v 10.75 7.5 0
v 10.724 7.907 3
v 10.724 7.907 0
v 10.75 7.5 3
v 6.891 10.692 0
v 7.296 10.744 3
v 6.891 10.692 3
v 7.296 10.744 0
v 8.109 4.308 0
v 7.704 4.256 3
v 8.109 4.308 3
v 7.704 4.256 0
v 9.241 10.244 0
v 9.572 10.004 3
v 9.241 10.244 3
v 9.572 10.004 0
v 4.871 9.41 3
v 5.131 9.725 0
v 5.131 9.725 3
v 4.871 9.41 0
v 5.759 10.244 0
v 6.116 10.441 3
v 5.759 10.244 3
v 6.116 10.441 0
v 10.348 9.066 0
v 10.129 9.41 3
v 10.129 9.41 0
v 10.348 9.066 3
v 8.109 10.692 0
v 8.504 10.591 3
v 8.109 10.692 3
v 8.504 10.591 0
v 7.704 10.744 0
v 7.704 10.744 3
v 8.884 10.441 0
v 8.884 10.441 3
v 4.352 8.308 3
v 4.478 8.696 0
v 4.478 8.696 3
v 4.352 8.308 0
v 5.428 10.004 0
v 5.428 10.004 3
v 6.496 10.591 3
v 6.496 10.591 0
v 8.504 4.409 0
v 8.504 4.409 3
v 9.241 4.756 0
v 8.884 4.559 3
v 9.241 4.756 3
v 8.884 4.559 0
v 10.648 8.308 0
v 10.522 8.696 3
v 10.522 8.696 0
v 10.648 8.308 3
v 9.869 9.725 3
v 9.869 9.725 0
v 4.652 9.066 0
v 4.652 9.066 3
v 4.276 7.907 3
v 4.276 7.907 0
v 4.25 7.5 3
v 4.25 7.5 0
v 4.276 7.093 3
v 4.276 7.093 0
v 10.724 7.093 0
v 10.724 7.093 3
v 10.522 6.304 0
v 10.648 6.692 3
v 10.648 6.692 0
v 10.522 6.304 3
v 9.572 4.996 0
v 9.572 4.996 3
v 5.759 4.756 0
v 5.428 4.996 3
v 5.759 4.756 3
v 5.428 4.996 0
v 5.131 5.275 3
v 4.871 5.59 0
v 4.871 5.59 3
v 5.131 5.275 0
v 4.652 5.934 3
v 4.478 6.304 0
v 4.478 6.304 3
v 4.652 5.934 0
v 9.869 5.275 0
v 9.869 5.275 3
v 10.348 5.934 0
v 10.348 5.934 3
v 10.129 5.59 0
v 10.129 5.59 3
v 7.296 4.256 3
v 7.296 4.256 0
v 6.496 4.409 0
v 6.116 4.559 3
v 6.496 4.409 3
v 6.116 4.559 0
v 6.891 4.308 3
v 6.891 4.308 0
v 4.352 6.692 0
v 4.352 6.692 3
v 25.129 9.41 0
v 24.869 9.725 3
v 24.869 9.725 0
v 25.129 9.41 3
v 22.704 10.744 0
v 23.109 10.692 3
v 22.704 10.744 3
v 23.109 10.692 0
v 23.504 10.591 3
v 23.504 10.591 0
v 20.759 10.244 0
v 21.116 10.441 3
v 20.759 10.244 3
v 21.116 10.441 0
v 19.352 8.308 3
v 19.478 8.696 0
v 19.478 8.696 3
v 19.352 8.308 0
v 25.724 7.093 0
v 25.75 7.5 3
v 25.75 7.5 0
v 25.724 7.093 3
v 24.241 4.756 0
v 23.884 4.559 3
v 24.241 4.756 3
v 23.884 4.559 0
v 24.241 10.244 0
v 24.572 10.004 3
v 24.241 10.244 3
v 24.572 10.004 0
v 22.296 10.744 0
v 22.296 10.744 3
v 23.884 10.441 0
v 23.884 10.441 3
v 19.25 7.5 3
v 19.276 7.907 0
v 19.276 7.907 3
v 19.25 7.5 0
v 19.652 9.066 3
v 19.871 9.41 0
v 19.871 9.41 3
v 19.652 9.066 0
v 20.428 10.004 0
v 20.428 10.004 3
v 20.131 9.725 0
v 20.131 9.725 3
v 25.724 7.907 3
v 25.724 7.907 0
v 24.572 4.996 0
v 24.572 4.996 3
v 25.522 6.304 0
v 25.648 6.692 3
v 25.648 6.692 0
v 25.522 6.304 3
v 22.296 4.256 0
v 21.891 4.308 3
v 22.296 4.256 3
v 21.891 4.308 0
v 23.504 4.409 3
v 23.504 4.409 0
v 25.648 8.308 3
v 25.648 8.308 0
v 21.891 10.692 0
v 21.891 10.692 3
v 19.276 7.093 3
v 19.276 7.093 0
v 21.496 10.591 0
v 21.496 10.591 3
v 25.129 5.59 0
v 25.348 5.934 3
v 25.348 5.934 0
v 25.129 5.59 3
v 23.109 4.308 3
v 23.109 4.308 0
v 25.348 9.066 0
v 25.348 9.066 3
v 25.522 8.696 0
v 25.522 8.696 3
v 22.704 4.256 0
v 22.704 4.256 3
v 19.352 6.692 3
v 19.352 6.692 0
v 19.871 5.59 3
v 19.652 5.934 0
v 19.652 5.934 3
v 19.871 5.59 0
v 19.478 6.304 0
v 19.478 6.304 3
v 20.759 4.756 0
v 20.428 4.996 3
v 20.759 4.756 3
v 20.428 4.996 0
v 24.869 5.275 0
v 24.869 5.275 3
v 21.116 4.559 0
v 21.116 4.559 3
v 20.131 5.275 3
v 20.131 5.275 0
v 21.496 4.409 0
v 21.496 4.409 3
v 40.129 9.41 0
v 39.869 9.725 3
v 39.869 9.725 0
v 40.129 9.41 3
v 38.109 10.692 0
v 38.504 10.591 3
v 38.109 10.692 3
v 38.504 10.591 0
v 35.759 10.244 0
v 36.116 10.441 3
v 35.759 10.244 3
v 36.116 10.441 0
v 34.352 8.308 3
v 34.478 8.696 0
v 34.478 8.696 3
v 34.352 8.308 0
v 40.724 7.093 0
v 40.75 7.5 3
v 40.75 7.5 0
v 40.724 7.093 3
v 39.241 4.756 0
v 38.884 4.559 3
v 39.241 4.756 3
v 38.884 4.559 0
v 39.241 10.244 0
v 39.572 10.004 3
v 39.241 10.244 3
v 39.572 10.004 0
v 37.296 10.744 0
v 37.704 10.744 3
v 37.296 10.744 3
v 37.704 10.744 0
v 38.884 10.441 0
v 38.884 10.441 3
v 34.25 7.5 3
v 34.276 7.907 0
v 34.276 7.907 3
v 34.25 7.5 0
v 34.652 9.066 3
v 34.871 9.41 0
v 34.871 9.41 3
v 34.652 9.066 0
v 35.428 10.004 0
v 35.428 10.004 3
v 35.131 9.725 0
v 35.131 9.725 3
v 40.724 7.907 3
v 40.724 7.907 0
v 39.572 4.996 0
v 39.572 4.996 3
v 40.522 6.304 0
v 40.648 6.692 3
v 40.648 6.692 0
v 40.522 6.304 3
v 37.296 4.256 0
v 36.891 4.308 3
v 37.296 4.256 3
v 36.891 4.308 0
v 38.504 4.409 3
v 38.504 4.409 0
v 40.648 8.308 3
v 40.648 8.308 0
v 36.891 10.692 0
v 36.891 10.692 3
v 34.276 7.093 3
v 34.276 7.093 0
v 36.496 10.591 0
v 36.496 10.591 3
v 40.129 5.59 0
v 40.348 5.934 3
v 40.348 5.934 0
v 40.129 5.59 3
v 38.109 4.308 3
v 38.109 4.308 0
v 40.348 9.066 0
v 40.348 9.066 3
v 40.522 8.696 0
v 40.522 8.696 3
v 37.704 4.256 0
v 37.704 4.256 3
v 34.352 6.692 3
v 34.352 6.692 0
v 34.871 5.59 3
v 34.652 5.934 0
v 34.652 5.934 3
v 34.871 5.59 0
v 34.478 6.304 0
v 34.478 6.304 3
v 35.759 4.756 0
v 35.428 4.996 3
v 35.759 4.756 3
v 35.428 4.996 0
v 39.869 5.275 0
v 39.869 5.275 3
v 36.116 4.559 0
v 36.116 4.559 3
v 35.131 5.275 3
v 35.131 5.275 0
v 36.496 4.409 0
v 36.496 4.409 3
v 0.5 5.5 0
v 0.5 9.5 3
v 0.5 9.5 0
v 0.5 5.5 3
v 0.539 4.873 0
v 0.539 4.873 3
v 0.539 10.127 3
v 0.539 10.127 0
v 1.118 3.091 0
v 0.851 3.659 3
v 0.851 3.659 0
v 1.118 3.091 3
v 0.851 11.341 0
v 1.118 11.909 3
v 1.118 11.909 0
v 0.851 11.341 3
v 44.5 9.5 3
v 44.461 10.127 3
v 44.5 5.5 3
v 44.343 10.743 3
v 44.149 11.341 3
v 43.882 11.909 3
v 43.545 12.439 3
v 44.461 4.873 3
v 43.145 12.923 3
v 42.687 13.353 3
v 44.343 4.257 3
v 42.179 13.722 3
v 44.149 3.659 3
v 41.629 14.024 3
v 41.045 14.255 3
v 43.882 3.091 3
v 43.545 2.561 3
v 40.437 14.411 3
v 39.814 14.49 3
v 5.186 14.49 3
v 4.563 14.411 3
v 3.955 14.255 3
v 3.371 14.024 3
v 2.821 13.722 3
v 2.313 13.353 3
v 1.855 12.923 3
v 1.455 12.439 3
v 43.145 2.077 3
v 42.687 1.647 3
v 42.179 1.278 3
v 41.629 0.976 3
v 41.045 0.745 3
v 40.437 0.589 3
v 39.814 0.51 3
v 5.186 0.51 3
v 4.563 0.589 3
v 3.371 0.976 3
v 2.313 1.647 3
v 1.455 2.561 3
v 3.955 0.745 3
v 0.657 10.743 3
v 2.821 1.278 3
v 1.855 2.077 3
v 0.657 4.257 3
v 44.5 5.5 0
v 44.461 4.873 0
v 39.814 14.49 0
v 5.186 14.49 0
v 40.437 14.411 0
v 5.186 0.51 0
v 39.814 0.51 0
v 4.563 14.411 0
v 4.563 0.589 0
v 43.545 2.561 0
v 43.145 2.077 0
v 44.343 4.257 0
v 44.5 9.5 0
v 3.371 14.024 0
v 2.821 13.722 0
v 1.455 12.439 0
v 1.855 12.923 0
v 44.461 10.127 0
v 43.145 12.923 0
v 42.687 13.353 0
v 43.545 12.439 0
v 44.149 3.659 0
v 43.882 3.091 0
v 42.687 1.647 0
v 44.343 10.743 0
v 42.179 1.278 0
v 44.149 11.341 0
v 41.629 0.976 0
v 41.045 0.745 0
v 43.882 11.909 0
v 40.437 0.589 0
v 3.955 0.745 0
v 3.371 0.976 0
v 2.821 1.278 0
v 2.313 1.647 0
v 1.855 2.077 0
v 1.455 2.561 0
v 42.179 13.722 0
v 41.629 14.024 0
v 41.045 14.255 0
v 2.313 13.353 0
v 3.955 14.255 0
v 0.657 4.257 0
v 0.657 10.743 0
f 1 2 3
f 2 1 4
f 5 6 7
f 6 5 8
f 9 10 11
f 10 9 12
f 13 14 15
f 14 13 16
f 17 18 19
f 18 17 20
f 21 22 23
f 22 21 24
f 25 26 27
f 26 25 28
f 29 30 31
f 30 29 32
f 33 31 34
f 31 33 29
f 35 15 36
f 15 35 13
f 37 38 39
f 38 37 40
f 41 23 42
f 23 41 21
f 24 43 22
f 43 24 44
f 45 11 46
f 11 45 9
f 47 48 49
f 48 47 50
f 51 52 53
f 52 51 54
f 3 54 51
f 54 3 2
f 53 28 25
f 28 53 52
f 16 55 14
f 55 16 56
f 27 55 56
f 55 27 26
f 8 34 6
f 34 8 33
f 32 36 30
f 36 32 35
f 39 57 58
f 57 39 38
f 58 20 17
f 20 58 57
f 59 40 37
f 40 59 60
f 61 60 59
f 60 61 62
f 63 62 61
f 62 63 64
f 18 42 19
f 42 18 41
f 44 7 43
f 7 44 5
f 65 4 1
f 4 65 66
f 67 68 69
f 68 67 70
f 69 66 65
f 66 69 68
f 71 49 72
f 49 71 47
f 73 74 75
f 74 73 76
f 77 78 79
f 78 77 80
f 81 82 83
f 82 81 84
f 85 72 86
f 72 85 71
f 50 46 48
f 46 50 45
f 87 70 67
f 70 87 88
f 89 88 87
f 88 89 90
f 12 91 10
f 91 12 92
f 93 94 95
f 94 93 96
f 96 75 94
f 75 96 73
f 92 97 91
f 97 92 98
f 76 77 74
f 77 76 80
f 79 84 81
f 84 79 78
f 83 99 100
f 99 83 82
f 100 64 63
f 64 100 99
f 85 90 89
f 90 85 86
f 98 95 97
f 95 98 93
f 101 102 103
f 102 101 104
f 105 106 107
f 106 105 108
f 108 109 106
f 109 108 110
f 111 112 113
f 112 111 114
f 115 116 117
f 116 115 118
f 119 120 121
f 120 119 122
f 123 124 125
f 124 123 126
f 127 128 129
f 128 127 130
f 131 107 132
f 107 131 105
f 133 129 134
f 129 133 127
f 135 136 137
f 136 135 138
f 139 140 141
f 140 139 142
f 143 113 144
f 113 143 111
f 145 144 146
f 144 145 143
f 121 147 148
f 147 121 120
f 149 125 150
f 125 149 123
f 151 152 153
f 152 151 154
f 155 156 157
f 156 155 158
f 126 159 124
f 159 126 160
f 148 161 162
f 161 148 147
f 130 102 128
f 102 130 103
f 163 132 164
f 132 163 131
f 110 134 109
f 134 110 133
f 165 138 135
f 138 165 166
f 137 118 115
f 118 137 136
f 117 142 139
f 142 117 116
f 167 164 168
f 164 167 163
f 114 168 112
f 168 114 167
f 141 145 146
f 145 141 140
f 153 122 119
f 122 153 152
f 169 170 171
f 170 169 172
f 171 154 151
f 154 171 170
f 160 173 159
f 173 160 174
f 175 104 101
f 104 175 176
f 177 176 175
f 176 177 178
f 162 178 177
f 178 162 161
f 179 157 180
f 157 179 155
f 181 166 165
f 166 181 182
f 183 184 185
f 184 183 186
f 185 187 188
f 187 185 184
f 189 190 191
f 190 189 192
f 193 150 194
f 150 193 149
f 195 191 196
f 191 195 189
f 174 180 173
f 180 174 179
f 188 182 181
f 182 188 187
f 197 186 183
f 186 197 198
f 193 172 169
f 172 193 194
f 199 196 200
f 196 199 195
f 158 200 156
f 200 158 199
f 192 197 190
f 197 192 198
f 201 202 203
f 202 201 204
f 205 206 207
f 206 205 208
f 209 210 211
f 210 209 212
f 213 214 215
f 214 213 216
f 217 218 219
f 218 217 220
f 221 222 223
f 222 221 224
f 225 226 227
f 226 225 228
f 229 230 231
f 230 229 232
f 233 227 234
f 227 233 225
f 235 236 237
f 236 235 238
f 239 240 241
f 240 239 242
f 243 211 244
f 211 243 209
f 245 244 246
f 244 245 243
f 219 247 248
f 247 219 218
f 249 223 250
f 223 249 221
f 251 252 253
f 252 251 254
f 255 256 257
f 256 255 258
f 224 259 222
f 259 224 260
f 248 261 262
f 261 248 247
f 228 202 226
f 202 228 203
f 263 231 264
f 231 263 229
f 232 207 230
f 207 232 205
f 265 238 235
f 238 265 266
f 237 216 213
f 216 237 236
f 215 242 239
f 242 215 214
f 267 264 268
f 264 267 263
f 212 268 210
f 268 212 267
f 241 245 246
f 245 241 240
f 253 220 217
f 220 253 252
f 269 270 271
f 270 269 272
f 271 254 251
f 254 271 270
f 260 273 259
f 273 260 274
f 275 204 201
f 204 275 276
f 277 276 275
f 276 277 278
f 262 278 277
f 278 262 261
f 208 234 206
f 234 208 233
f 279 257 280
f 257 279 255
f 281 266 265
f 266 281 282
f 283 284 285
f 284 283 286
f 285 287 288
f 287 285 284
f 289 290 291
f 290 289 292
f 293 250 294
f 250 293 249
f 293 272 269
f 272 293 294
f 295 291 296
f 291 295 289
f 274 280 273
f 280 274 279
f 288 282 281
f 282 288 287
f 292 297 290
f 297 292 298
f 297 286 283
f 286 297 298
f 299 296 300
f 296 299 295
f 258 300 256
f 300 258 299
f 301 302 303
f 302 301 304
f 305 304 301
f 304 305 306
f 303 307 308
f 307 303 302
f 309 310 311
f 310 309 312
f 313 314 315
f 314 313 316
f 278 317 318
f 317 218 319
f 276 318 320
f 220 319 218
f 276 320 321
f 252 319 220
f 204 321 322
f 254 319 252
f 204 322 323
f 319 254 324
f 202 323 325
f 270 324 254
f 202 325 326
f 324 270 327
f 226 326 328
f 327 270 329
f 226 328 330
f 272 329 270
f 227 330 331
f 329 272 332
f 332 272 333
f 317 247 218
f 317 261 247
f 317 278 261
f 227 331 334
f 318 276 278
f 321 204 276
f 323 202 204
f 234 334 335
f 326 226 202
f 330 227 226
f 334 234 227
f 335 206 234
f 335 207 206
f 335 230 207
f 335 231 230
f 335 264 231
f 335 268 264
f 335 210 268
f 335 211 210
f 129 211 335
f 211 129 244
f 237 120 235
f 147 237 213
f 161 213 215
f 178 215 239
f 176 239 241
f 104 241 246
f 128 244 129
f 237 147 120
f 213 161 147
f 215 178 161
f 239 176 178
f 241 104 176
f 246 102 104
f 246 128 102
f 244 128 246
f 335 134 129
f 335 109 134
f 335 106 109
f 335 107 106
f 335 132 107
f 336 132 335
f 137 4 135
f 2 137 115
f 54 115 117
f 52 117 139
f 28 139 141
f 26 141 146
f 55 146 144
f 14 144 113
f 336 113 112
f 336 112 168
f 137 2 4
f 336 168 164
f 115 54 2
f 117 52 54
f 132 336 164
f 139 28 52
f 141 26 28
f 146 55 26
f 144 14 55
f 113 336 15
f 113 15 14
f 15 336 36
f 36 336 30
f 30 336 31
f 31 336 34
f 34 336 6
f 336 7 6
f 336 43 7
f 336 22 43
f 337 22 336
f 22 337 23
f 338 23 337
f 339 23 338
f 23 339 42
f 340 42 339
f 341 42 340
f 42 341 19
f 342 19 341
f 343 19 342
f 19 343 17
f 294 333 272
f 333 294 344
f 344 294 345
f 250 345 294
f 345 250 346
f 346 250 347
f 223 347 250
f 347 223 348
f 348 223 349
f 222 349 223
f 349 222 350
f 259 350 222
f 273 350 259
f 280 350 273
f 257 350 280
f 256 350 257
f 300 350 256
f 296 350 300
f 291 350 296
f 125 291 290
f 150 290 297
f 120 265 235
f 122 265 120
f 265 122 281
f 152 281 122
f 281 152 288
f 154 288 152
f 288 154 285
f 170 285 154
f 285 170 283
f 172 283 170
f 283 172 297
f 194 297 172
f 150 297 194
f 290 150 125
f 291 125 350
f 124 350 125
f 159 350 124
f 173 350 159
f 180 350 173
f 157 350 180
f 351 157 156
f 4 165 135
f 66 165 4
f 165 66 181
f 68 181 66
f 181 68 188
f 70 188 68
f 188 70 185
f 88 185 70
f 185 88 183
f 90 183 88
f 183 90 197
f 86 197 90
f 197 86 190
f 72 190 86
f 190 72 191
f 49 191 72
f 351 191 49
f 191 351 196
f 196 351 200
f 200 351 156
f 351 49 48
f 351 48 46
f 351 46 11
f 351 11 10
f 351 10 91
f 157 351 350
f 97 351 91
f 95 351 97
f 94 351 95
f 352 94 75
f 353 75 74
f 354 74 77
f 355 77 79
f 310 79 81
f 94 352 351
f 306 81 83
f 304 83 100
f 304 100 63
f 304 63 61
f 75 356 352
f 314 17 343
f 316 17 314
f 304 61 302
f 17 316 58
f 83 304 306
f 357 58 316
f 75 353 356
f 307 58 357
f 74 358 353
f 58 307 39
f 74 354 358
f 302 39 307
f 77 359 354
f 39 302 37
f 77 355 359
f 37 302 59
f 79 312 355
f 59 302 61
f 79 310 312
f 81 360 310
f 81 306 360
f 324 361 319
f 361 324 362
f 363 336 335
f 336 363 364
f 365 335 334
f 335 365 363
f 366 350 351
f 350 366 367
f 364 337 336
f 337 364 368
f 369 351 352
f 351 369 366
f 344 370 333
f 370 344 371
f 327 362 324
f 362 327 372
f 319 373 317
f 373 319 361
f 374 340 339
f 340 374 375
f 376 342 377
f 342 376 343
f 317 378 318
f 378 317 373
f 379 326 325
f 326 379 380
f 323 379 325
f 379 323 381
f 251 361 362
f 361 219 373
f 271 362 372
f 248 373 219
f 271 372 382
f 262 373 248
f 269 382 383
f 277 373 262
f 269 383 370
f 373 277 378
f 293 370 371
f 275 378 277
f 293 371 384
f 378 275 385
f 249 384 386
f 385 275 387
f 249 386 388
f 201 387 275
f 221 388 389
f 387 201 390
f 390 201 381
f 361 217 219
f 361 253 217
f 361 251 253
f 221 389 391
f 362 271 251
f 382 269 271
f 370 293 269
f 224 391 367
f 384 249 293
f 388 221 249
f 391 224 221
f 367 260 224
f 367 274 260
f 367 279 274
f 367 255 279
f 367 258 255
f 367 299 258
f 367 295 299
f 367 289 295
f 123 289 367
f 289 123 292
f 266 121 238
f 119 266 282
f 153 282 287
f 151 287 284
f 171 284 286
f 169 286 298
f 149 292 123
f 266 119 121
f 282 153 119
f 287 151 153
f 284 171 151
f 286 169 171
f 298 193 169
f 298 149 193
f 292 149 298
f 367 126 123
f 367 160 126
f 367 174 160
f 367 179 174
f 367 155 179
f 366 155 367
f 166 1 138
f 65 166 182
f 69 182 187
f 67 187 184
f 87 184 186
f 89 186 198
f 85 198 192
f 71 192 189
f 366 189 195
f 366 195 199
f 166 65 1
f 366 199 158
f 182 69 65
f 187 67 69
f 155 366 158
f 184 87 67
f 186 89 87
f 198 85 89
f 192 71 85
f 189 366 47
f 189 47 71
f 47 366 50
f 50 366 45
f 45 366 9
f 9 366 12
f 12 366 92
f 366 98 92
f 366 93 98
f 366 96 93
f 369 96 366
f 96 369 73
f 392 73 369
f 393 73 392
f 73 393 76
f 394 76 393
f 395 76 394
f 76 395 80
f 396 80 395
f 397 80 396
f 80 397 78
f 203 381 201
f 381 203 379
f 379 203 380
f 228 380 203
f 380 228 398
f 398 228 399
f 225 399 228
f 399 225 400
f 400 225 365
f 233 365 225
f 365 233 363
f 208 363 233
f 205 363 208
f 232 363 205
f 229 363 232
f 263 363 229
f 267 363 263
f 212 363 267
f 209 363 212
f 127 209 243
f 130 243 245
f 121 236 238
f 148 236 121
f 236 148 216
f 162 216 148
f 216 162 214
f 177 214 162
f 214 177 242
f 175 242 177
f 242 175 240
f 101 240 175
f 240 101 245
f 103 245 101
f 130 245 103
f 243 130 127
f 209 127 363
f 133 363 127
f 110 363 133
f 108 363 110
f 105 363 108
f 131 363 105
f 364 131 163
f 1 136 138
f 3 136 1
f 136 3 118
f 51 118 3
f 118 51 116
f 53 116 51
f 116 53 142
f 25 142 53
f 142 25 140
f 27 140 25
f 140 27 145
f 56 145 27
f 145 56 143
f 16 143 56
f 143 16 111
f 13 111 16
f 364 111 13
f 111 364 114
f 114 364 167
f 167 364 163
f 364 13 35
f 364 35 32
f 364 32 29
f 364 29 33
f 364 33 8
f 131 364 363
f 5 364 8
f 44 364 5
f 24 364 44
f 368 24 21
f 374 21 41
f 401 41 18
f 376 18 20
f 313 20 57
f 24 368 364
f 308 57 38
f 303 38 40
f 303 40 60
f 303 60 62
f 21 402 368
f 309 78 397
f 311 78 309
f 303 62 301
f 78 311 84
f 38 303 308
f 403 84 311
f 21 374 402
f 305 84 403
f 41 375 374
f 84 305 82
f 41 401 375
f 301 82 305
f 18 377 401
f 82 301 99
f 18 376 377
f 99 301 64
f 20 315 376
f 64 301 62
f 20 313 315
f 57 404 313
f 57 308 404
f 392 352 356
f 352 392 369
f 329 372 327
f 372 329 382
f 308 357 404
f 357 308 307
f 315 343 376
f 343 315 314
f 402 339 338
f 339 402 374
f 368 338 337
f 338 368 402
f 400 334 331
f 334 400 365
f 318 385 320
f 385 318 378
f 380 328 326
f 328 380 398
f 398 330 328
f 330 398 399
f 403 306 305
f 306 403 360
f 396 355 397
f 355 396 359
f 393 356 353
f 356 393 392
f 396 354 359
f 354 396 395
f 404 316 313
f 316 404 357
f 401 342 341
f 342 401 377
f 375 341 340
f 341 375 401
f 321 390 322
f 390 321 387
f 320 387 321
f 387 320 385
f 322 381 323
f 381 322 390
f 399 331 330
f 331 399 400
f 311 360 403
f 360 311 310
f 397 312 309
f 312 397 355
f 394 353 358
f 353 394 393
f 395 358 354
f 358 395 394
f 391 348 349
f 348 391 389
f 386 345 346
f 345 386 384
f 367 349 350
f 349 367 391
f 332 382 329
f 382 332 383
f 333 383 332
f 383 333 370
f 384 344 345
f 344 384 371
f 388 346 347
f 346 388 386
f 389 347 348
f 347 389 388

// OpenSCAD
// Generated by SolidPython 1.1.3 on 2023-01-30 13:25:30
$fn = 50;


difference() {
	union() {
		translate(v = [22.5000000000, 7.5000000000, 0]) {
			rotate(a = [0, 0, 0]) {
				hull() {
					translate(v = [-17.0000000000, 2.0000000000, 0]) {
						rotate(a = [0, 0, 0]) {
							translate(v = [0, 0, 0]) {
								rotate(a = [0, 0, 0]) {
									cylinder(h = 3, r = 5);
								}
							}
						}
					}
					translate(v = [17.0000000000, 2.0000000000, 0]) {
						rotate(a = [0, 0, 0]) {
							translate(v = [0, 0, 0]) {
								rotate(a = [0, 0, 0]) {
									cylinder(h = 3, r = 5);
								}
							}
						}
					}
					translate(v = [-17.0000000000, -2.0000000000, 0]) {
						rotate(a = [0, 0, 0]) {
							translate(v = [0, 0, 0]) {
								rotate(a = [0, 0, 0]) {
									cylinder(h = 3, r = 5);
								}
							}
						}
					}
					translate(v = [17.0000000000, -2.0000000000, 0]) {
						rotate(a = [0, 0, 0]) {
							translate(v = [0, 0, 0]) {
								rotate(a = [0, 0, 0]) {
									cylinder(h = 3, r = 5);
								}
							}
						}
					}
				}
			}
		}
	}
	union() {
		translate(v = [7.5000000000, 7.5000000000, 0]) {
			rotate(a = [0, 0, 0]) {
				translate(v = [0, 0, -50]) {
					rotate(a = [0, 0, 0]) {
						cylinder(h = 100, r = 3.2500000000);
					}
				}
			}
		}
		translate(v = [22.5000000000, 7.5000000000, 0]) {
			rotate(a = [0, 0, 0]) {
				translate(v = [0, 0, -50]) {
					rotate(a = [0, 0, 0]) {
						cylinder(h = 100, r = 3.2500000000);
					}
				}
			}
		}
		translate(v = [37.5000000000, 7.5000000000, 0]) {
			rotate(a = [0, 0, 0]) {
				translate(v = [0, 0, -50]) {
					rotate(a = [0, 0, 0]) {
						cylinder(h = 100, r = 3.2500000000);
					}
				}
			}
		}
	}
}
/***********************************************
*********      SolidPython code:      **********
************************************************
 
from solid import *
import os
import subprocess

import oomB

import opsc_library_gen

mode = "laser"
#mode = "3d_print"

defined_objects = {}

radius_dict = {}
countersunk_dict = {}


def set_mode(m):
    global mode
    mode = m
    radius_dict['M6'] = 6.5/2
    radius_dict['M3'] = 3.3/2
    if mode == "laser":
        radius_dict['M6'] = 6/2
        radius_dict['M3'] = 3/2

    countersunk_dict['M3'] = {}
    countersunk_dict['M3']['little_rad'] = radius_dict['M3']
    countersunk_dict['M3']['big_rad'] = (5.5+0.6)/2
    if mode == "laser":
        countersunk_dict['M3']['big_rad'] = (4.75+0.6)/2
        countersunk_dict['M3']['little_rad'] = (4.75+0.6)/2

    countersunk_dict['M3']['height'] = 1.7


def opsc_make_object(filename, objects, save_type="none",resolution=50, layers = 1, tilediff = 200, mode="laser"):
    set_mode(mode)
    save_type = save_type.lower()
    os.makedirs(os.path.dirname(filename), exist_ok=True)
    final_object = opsc_get_object(objects)
    # Save the final object to the specified filename    
    scad_render_to_file(final_object, filename, file_header='$fn = %s;' % resolution, include_orig_code=True)
    if mode == "laser":
        filename_laser = filename.replace(".scad","-flat.scad")
        scad_render_to_file(getLaser(final_object, layers=layers, tilediff=tilediff), filename_laser, file_header='$fn = %s;' % resolution, include_orig_code=True)
        if save_type == "all":
            saveToAll(filename_laser)
        elif save_type == "dxf":
            saveToDxf(filename_laser)
    if save_type == "all":
        saveToAll(filename)
    elif save_type == "dxf":
        saveToDxf(filename)


def opsc_get_object(objects):
    # Create the solidpython objects
    positive_objects = [get_opsc_item(obj) for obj in objects if obj['type'] == 'positive']
    negative_objects = [get_opsc_item(obj) for obj in objects if obj['type'] == 'negative']
    # Union the positive objects
    positive_object = union()(*positive_objects)
    # Union the negative objects
    negative_object = union()(*negative_objects)
    # Create the final object by subtracting the negative objects from the positive objects
    return difference()(positive_object, negative_object)

def get_opsc_item(params):
    # A dictionary to map radius string values to numerical values
    #radius_dict = {'small': 5, 'medium': 10, 'large': 15}
    # An array of function names for basic shapes
    basic_shapes = ['cube', 'sphere', 'cylinder']
    
    # An array of function names for other shapes
    other_shapes = ['hole', 'slot', 'rounded_rectangle', 'countersunk']
    


    # Convert radius to r if present, and remove radius from the params dictionary
    if 'radius' in params:
        if isinstance(params['radius'], str):
            # Use the radius_dict to map the radius string value to a numerical value
            params['r'] = radius_dict[params['radius']]
        else:
            params['r'] = params['radius']
        del params['radius']
    

    # Check if the object type is a basic shape
    if params['shape'] in basic_shapes:
        # Remove shape and unexpected dictionary values
        allowed_keys = {'size', 'r', 'r1', 'r2', 'd', 'h', 'rw', 'rh', 'dw', 'dh'}
        shape_params = {k: v for k, v in params.items() if k in allowed_keys}

        # Call the corresponding function for the shape parameter, using ** notation to pass the shape_params dictionary as keyword arguments
        return get_opsc_transform(params,globals()[params['shape']](**shape_params))
    
    # If the object type is not a basic shape, check if it's a defined object or one of the other shapes
    elif params['shape'] in other_shapes:
        # Call the corresponding function for the shape parameter, passing the params dictionary as an argument
        p2 = copy.deepcopy(params)
        p2["pos"] = [0,0,0]
        return get_opsc_transform(params,globals()[params['shape']](p2))
    
    # If the object is not a basic shape or a defined object, try to import it from a .scad file
    else:
        obj = defined_objects[params['shape']]
        return get_opsc_transform(params,obj)

def get_opsc_transform(params, solid_obj):
    # Rotate the object based on the 'rot' field in the params dictionary, or the 'rotX', 'rotY', and 'rotZ' fields if 'rot' is not present
    rot = params.get('rot', [])
    if rot:
        rotX, rotY, rotZ = rot
    else:
        rotX = params.get('rotX', 0)
        rotY = params.get('rotY', 0)
        rotZ = params.get('rotZ', 0)
    solid_obj = rotate([rotX, rotY, rotZ])(solid_obj)

    # Translate the object based on the 'pos' field in the params dictionary, or the 'x', 'y', and 'z' fields if 'pos' is not present
    pos = params.get('pos', [])
    if pos:
        x, y, z = pos
    else:
        x = params.get('x', 0)
        y = params.get('y', 0)
        z = params.get('z', 0)
    solid_obj = translate([x, y, z])(solid_obj)
    return solid_obj


import random

def opsc_easy_array(type, shape, repeats, pos_start, shift_arr, **kwargs):
    for i in range(0,3):
        repeats.append(1)
        pos_start.append(0)
        shift_arr.append(0)
    return_objects = []

    for x in range(0,repeats[0]):
        for y in range(0,repeats[1]):
            for z in range(0,repeats[2]):
                return_objects.append(opsc_easy(type, shape, pos=[pos_start[0]+x*shift_arr[0],pos_start[1]+y*shift_arr[1],pos_start[2]+z*shift_arr[2]], **kwargs))
    return return_objects                



def opsc_easy(type, shape, **kwargs):
    obj = {
        'type': type,
        'shape': shape
    }
    for param in ['size', 'r', 'r1', 'r2', 'd', 'h', 'rw', 'rh', 'dw', 'dh', 'pos', 'x', 'y', 'z', 'rot', 'rotX', 'rotY', 'rotZ', "w"]:
        if param in kwargs:
            obj[param] = kwargs[param]
    return obj

def hole(params):
    p2 = copy.deepcopy(params)  
    # Check if the radius is a string and replace it with the corresponding value from the dictionary
    if isinstance(p2['r'], str):
        p2['r'] = radius_dict[p2['r']]
    
    # Set the height to 100 if not specified
    if 'h' not in p2:
        p2['h'] = 100
        p2["pos"] = [0,0,-50]
    p2["center"] = True
    # Create the cylinder object
    p2["shape"] = "cylinder"
    p2["type"] = "positive"

    return get_opsc_item(p2)

import copy

def countersunk(params):
    p2 = copy.deepcopy(params)
    counter_rad = p2['r']
    p2['r'] = radius_dict[p2['r']]
    hp = copy.deepcopy(p2)
    hp["type"] = "positive"
    hp["shape"] = "hole"
    del hp["rot"]
    hol = get_opsc_item(hp)
    
    cp = copy.deepcopy(p2)
    cp["h"] = countersunk_dict[counter_rad]["height"]
    cp["r2"] = countersunk_dict[counter_rad]["little_rad"]
    cp["r1"] = countersunk_dict[counter_rad]["big_rad"]
    del cp["r"]
    del cp["rot"]
    cp["type"] = "positive"
    cp["shape"] = "cylinder"
    cp["pos"] = [0,0,0]

    top = get_opsc_item(cp)
    return union()(hol,top)



def slot(params):  
    p2 = copy.deepcopy(params) 
    if isinstance(p2['r'], str):
        p2['r'] = radius_dict[p2['r']]
    p2["type"] = "positive"
    p2["shape"] = "hole"
    del p2["rot"]
    p2["pos"] = [0,0,0]
    left = copy.deepcopy(p2)
    right = copy.deepcopy(p2)
    left["pos"][0] = p2["w"] / 2 - p2["r"] 
    
    right["pos"][0] = -p2["w"] / 2 + p2["r"] 
    pass
    leftObj = get_opsc_item(left)
    rightObj = get_opsc_item(right)
    return hull()(leftObj, rightObj)

def rounded_rectangle(params):   
    p2 = copy.deepcopy(params) 
    p2["h"] = p2["size"][2]
    p2["pos"] = p2.get("pos", [0, 0, 0]) 
    p2["type"] = "positive"
    p2["shape"] = "hole"
    p2["pos"] = [0,0,0]
    
    if 'rot' in p2:
        del p2["rot"]   
    if 'r' not in p2:
        p2["r"] = 5 
    tl = copy.deepcopy(p2)
    tr = copy.deepcopy(p2)
    bl = copy.deepcopy(p2)
    br = copy.deepcopy(p2)
    tl["pos"][0] = -(p2["size"][0] - p2["r"]*2)/2
    tl["pos"][1] = (p2["size"][1] - p2["r"]*2)/2
    tr["pos"][0] = (p2["size"][0] - p2["r"]*2)/2
    tr["pos"][1] = (p2["size"][1] - p2["r"]*2)/2
    bl["pos"][0] = -(p2["size"][0] - p2["r"]*2)/2
    bl["pos"][1] = -(p2["size"][1] - p2["r"]*2)/2
    br["pos"][0] = (p2["size"][0] - p2["r"]*2)/2
    br["pos"][1] = -(p2["size"][1] - p2["r"]*2)/2
    del tl["size"]
    del tr["size"]
    del bl["size"]
    del br["size"]
    tlo = get_opsc_item(tl)
    tro = get_opsc_item(tr)
    blo = get_opsc_item(bl)
    bro = get_opsc_item(br)    
    return hull()(tlo, tro, blo, bro)



def import_scad_object(filename):
    # Import the .scad file and convert it to a solidpython object
    #filename = "parts"
    obj = import_scad(filename)
    return obj.main()
    


import os
import solid as solidpython

# A dictionary to store the defined objects


def load_scad_objects():
    opsc_library_gen.gen_library(defined_objects)

import random

def test(num_objects):
    objects = []
    for i in range(num_objects):
        # Choose a random shape
        #shape = random.choice(['cube', 'sphere', 'cylinder', 'hole', 'slot', "rounded_rectangle"])
        shape = random.choice(["rounded_rectangle"])

        # Choose a random type
        type = random.choice(['positive', 'negative'])
        
        # Create an empty object dictionary
        obj = {'shape': shape, 'type': type}
        
        # Set shape-specific parameters
        if obj['shape'] in ['cube']:
            obj['size'] =  [random.uniform(5, 15), random.uniform(5, 15), random.uniform(5, 15)]
        if obj['shape'] in ['rounded_rectangle']:
            obj['size'] =  [random.uniform(5, 15), random.uniform(5, 15), random.uniform(5, 15)]
            obj['r'] = random.uniform(0.5, 5)
        elif obj['shape'] == 'sphere':
            obj['r'] = random.uniform(5, 15)
        elif obj['shape'] in ['cylinder', 'hole']:
            obj['r'] = random.uniform(0.5, 5)
            obj['h'] = random.uniform(5, 15)
        elif obj['shape'] == 'slot':
            obj['r'] = random.uniform(0.5, 5)
            obj['h'] = random.uniform(5, 15)
            obj['w'] = random.uniform(5, 15)
        
        # Set a random position and rotation
        obj['pos'] = [random.uniform(-20, 20), random.uniform(-20, 20), random.uniform(-20, 20)]
        obj['rot'] = [random.uniform(-180, 180), random.uniform(-180, 180), random.uniform(-180, 180)]
        
        # Add the object to the list
        objects.append(obj)
    return objects

####### old file saving
def saveToAll(fileIn):
    saveToDxf(fileIn)
    saveToPng(fileIn)
    saveToStl(fileIn)
    saveToSvg(fileIn)

def saveToDxf(fileIn, fileOut="", copy_to_laser=True):
    if fileOut == "":
        fileOut = fileIn.replace(".scad",".dxf")
    saveToFile(fileIn, fileOut)


    
def saveToPng(fileIn, fileOut="",extra="--render"):
    if fileOut == "":
        fileOut = fileIn.replace(".scad",".png")
    saveToFile(fileIn, fileOut)

def saveToStl(fileIn, fileOut=""):
    if fileOut == "":
        fileOut = fileIn.replace(".scad",".stl")
    saveToFile(fileIn, fileOut)
    
def saveToSvg(fileIn, fileOut=""):
    if fileOut == "":
        fileOut = fileIn.replace(".scad",".svg")
    saveToFile(fileIn, fileOut)

def saveToFile(fileIn, fileOut,extra=""):
    #extra = extra + " --colorscheme Tomorrow"

    launchStr = 'openscad -o "' + fileOut + '"' + extra + ' "' + fileIn + '"'
    if ".png" in fileOut:
        launchStr = launchStr + " --render"
    print("            saveToFile launch string: " + launchStr)
    subprocess.run(launchStr)
    x=0

def getLaser(final_object,start=1.5,layers=1,thickness=3,tilediff=200):
        rv= []

        for x in range(layers):
            rv.append(translate([0,x*tilediff,0])(
                    projection()(
                        intersection()(translate([-500,-500,start+x*thickness])(cube(size=[1000,1000,0.1])),
                            final_object
                        )
                    )
            )
            )
            
        return union()(rv)

set_mode("laser")
load_scad_objects() 
 
************************************************/
